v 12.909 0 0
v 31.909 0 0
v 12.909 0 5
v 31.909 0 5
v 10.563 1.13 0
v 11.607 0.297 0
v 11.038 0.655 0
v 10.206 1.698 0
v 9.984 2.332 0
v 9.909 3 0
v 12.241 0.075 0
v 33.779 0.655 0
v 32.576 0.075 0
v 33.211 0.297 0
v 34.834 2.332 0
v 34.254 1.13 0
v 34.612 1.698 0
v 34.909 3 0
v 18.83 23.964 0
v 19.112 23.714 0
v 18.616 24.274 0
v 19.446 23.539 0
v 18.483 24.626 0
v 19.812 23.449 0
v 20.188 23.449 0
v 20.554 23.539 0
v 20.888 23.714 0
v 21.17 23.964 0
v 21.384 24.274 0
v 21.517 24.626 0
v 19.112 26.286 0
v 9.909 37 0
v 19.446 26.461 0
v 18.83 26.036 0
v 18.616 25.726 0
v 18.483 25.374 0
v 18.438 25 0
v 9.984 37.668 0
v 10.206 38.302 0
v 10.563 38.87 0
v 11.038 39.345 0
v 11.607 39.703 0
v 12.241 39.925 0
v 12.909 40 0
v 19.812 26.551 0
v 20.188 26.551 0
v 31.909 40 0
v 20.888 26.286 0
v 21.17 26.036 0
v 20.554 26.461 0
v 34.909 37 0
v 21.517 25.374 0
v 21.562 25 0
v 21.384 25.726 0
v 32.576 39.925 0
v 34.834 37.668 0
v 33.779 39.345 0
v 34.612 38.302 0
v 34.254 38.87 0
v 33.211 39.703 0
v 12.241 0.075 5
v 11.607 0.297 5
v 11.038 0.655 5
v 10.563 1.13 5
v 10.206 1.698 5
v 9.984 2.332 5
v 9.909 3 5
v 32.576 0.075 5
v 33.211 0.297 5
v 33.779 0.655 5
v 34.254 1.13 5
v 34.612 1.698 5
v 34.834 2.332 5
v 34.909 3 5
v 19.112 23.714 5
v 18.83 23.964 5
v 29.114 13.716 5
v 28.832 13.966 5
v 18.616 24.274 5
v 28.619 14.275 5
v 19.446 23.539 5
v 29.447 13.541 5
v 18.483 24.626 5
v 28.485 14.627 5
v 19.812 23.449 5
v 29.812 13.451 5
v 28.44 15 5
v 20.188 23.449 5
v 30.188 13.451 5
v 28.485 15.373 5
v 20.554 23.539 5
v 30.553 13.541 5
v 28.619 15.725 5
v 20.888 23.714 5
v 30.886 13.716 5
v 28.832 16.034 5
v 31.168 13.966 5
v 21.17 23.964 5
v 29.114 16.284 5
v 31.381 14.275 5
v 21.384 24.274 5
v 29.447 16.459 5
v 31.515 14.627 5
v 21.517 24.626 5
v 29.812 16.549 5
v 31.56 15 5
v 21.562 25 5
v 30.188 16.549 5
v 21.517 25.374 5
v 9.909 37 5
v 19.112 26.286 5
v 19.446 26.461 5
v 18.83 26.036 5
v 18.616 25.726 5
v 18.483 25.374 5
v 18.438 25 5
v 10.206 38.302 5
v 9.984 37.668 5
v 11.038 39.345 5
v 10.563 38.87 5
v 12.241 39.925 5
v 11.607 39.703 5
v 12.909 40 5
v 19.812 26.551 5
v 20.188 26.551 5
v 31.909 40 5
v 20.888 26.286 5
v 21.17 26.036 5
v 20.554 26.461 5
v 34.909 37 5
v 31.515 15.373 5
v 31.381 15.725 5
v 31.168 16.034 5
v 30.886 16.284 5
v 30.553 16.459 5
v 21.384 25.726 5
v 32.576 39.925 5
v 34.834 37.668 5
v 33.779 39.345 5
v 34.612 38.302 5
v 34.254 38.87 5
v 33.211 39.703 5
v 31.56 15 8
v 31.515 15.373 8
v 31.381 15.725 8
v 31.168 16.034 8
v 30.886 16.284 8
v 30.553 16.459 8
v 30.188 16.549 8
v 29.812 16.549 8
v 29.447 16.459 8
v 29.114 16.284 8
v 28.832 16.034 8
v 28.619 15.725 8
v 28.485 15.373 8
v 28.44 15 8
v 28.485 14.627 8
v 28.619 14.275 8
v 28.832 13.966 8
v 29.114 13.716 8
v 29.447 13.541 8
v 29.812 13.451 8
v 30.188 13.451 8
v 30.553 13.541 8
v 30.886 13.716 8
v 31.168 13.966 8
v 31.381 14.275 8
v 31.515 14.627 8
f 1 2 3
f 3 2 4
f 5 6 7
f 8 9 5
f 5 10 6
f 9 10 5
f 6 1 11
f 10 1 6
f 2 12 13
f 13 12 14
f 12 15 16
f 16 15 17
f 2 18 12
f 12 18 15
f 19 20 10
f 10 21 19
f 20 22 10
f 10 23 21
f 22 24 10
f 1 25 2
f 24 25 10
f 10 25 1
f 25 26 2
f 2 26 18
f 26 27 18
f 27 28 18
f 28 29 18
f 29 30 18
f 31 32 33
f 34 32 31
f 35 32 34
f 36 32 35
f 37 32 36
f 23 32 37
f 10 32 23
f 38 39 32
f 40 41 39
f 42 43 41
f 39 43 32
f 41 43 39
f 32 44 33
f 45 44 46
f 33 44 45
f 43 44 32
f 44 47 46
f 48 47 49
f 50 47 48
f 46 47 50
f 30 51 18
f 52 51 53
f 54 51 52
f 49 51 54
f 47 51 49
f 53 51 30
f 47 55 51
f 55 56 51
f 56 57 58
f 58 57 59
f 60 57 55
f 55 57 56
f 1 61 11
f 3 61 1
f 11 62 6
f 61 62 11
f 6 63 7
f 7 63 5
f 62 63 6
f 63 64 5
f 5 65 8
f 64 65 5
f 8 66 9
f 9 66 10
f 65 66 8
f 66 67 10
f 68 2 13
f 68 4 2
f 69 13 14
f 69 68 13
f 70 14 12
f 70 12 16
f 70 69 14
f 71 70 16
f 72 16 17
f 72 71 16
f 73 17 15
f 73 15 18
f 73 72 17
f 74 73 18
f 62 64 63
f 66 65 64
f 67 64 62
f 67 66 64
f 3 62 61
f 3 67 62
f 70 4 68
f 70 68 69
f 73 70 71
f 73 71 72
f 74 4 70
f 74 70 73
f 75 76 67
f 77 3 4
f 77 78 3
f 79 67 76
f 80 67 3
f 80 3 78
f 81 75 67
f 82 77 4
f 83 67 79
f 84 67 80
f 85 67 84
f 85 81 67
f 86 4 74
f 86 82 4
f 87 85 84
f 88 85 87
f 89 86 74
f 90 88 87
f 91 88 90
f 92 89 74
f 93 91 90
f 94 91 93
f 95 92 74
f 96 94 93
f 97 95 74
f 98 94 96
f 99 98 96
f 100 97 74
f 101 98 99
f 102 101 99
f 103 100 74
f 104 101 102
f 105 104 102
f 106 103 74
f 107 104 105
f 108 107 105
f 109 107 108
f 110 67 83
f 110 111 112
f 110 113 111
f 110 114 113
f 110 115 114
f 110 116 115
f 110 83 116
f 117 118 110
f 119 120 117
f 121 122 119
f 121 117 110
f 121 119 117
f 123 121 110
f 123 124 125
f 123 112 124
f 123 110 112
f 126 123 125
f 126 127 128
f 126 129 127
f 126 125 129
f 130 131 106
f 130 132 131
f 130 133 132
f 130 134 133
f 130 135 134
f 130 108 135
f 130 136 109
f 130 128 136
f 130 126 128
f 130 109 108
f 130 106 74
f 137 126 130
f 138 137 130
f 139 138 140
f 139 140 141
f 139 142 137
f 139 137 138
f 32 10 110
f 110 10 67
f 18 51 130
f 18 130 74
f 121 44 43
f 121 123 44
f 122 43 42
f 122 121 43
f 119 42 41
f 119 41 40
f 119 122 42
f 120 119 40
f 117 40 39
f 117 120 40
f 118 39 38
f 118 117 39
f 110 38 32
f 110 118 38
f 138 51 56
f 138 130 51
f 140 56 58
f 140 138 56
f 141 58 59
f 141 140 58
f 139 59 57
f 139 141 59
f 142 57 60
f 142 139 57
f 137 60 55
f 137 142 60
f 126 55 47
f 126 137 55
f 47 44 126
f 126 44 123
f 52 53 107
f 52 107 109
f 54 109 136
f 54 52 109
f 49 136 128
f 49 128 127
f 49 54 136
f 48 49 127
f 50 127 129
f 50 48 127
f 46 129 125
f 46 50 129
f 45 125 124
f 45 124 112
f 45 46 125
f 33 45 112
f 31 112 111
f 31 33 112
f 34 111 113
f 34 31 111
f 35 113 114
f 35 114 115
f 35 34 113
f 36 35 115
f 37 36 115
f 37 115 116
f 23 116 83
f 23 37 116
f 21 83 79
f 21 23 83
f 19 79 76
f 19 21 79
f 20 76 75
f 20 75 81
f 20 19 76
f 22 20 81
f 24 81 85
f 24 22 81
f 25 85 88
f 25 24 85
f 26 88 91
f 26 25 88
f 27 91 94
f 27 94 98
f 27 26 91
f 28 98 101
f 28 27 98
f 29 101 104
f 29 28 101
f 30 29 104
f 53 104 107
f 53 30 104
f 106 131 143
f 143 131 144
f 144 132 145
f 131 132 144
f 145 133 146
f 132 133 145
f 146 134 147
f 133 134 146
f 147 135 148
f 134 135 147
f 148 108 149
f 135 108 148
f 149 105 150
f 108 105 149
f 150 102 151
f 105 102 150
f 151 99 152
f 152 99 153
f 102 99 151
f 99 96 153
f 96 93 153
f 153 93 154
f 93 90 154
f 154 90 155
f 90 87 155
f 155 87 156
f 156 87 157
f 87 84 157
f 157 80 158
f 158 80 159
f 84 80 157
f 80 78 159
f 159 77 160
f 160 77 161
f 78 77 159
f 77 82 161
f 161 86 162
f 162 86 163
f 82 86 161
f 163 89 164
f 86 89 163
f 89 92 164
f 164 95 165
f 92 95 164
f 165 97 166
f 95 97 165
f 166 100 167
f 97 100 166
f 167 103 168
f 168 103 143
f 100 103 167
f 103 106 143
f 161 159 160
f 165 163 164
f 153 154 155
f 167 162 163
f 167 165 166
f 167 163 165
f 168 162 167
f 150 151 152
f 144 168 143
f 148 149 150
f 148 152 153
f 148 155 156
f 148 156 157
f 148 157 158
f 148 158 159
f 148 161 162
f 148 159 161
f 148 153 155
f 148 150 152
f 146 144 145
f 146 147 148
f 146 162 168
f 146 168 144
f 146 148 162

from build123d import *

# Parameters (mm, degrees)
SKETCH_W     = 25
SKETCH_H     = 40
SKETCH_R     = 1.5625
PAD_DEPTH    = 5
FILLET_R     = 3
SKETCH001_R  = 1.56
PAD001_DEPTH = 3


with BuildPart() as part:
    # Sketch → Pad (new body)
    with BuildSketch(Plane.XY):
        with Locations((22.40888, 20)):
            Rectangle(SKETCH_W, SKETCH_H)
        with Locations((20, 25)):
            Circle(SKETCH_R, mode=Mode.SUBTRACT)
    extrude(amount=PAD_DEPTH)

    # Fillet
    fillet_edges = [part.edges().sort_by_distance(p)[0] for p in [
        (9.90888, 0, 2.5),
        (34.90888, 0, 2.5),
        (34.90888, 40, 2.5),
        (9.90888, 40, 2.5),
    ]]
    fillet(fillet_edges, radius=FILLET_R)

    # Sketch001 (on Face7 of Pad) → Pad001 (join)
    with BuildSketch(Plane.XY.offset(5)):
        with Locations((30, 15)):
            Circle(SKETCH001_R)
    extrude(amount=PAD001_DEPTH)


solid = part.part
